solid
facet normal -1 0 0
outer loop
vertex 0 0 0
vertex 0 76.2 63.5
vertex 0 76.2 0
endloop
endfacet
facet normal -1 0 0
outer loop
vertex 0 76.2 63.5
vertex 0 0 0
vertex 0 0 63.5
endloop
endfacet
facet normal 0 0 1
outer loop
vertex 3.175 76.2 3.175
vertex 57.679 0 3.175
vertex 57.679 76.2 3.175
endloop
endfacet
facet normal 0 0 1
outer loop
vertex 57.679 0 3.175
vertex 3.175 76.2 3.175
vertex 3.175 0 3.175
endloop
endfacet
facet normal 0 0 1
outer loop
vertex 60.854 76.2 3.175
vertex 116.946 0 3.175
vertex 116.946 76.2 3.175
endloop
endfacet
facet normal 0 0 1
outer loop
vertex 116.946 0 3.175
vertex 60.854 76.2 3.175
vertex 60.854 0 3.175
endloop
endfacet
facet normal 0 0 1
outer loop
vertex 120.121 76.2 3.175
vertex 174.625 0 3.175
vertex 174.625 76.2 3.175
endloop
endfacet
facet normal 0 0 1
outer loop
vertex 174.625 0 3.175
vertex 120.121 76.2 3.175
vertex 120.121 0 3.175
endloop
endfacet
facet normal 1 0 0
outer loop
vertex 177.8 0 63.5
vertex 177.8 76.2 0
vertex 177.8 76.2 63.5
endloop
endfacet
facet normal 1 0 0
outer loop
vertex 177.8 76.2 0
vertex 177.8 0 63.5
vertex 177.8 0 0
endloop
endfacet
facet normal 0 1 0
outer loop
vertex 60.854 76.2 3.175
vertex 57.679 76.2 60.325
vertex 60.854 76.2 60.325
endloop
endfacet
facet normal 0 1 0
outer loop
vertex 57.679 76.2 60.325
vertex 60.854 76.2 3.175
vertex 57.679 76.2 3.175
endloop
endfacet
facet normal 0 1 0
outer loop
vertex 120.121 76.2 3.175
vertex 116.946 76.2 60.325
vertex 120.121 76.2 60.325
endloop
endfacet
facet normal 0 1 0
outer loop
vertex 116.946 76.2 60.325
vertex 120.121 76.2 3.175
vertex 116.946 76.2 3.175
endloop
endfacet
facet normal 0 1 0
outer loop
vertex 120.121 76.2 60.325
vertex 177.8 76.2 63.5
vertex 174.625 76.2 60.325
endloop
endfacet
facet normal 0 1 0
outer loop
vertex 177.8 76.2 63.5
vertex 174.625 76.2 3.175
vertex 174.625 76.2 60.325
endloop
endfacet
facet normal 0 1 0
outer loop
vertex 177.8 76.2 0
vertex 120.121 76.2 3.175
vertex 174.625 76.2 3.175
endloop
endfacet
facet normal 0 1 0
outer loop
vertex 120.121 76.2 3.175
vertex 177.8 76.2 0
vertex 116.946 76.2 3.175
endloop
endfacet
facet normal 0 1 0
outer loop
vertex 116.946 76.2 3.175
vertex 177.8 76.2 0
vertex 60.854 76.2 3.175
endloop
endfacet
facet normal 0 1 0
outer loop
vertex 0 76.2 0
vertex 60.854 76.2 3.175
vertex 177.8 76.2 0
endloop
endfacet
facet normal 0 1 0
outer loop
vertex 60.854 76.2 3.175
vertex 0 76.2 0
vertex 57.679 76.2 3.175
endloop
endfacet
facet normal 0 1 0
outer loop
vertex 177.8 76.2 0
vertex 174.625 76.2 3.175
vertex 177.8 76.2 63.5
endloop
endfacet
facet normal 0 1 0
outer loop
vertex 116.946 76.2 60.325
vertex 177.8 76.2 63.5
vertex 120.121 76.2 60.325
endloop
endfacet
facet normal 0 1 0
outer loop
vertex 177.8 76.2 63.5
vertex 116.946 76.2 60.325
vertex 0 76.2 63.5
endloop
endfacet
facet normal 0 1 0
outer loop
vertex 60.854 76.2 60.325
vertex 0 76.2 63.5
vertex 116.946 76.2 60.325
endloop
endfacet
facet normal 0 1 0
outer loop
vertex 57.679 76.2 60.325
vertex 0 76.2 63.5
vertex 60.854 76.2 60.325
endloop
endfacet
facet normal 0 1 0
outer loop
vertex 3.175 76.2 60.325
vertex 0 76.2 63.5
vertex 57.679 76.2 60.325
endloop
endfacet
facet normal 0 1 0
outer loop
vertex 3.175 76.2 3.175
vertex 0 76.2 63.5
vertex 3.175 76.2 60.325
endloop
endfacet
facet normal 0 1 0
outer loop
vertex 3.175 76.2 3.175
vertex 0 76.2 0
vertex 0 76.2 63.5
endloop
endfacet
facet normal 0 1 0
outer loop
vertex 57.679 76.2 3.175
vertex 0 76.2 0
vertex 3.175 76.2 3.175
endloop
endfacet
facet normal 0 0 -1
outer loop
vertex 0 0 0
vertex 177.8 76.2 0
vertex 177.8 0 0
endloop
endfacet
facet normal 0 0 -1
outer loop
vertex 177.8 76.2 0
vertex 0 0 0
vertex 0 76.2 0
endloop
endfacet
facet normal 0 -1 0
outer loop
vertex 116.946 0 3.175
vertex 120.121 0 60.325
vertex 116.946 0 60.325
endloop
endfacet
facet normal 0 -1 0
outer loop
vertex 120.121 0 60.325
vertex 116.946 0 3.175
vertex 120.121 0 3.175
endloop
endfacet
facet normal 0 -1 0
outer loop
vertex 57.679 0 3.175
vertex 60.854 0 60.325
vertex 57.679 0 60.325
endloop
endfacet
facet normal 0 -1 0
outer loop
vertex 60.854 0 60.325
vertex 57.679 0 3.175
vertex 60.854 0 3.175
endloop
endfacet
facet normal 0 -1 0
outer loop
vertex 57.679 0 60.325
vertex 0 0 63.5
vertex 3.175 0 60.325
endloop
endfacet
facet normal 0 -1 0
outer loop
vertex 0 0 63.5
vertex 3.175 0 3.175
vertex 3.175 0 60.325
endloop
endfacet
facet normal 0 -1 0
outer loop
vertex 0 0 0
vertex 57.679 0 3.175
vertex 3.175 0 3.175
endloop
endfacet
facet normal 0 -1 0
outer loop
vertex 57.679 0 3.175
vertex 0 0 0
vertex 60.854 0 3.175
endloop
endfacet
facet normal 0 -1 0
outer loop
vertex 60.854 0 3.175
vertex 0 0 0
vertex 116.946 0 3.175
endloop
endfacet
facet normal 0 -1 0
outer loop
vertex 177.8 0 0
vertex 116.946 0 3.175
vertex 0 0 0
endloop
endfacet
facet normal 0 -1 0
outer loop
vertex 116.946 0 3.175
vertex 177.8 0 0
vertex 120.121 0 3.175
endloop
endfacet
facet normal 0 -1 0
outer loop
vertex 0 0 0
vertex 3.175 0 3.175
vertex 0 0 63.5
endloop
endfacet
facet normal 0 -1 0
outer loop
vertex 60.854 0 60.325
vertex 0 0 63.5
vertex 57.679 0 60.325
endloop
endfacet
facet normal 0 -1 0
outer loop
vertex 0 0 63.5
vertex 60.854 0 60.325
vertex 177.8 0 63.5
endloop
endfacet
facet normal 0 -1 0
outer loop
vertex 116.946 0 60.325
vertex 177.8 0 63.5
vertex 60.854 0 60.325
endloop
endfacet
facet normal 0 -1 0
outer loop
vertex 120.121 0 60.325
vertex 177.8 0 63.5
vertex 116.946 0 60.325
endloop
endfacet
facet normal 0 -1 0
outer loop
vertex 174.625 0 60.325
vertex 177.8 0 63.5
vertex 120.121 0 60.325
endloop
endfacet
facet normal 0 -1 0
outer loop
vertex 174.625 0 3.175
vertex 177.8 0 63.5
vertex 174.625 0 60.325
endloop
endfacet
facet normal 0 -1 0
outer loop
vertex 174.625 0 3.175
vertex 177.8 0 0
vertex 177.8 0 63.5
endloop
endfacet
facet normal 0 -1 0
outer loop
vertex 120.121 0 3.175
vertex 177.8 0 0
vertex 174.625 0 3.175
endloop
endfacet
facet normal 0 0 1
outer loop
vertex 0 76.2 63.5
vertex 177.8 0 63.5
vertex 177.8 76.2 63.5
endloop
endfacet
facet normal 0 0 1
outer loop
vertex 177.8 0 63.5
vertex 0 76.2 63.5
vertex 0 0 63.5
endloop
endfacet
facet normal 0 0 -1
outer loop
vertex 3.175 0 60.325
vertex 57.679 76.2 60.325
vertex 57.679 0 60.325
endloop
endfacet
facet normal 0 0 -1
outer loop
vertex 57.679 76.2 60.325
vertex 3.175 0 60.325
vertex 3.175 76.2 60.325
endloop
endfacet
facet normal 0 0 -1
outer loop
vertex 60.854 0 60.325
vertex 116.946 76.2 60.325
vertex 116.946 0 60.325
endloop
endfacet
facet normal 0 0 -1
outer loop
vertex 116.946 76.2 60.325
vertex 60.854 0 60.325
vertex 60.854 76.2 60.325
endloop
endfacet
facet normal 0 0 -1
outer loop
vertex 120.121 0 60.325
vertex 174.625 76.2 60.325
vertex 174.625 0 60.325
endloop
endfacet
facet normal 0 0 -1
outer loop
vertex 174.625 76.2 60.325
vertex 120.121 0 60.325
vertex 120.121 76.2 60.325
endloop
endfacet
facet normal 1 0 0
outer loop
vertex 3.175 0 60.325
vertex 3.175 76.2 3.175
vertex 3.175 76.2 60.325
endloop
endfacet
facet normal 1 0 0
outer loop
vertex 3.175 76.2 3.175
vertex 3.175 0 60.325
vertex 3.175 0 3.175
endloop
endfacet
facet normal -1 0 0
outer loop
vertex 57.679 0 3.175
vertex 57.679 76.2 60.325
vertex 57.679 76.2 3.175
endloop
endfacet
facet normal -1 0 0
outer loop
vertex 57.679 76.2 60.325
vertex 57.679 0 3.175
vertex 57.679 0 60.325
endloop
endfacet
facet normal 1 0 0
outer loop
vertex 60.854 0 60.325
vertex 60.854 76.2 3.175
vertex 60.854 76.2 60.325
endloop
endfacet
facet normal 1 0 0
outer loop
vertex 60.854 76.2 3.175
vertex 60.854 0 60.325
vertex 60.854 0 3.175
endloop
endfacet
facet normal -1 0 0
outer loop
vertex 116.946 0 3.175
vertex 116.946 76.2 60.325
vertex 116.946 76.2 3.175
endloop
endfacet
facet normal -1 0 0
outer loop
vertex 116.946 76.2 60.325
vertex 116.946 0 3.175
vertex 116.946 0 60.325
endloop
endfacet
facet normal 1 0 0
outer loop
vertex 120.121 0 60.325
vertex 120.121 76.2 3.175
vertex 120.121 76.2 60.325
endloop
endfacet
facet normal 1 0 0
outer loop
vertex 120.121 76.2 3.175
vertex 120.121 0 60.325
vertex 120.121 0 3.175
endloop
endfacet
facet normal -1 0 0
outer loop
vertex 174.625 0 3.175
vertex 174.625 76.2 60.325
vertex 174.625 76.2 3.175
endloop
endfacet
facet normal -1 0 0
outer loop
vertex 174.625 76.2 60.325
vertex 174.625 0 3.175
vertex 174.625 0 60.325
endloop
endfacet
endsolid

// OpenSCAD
height = 2.500;
width  = 7.000;
depth  = 3.000;
wall   = 0.125;
plate  = 0.125;

mheight = height * 25.4;
mwidth  = width  * 25.4;
mdepth  = depth  * 25.4;
mwall   = wall   * 25.4;
mplate  = plate  * 25.4;

//
//  Top & bottom
//
translate ([0, 0, 0])
  cube ([mwidth, mdepth, mplate]);
translate ([0, 0, mheight - mplate])
  cube ([mwidth, mdepth, mplate]);

//
//  Vertical supports
//
translate ([0, 0, 0])
  cube ([mwall, mdepth, mheight]);
translate ([((mwidth / 3) * 1) - (mwall / 2), 0, 0])
  cube ([mwall, mdepth, mheight]);
translate ([((mwidth / 3) * 2) - (mwall / 2), 0, 0])
  cube ([mwall, mdepth, mheight]);
translate ([mwidth - mwall, 0, 0])
  cube ([mwall, mdepth, mheight]);
